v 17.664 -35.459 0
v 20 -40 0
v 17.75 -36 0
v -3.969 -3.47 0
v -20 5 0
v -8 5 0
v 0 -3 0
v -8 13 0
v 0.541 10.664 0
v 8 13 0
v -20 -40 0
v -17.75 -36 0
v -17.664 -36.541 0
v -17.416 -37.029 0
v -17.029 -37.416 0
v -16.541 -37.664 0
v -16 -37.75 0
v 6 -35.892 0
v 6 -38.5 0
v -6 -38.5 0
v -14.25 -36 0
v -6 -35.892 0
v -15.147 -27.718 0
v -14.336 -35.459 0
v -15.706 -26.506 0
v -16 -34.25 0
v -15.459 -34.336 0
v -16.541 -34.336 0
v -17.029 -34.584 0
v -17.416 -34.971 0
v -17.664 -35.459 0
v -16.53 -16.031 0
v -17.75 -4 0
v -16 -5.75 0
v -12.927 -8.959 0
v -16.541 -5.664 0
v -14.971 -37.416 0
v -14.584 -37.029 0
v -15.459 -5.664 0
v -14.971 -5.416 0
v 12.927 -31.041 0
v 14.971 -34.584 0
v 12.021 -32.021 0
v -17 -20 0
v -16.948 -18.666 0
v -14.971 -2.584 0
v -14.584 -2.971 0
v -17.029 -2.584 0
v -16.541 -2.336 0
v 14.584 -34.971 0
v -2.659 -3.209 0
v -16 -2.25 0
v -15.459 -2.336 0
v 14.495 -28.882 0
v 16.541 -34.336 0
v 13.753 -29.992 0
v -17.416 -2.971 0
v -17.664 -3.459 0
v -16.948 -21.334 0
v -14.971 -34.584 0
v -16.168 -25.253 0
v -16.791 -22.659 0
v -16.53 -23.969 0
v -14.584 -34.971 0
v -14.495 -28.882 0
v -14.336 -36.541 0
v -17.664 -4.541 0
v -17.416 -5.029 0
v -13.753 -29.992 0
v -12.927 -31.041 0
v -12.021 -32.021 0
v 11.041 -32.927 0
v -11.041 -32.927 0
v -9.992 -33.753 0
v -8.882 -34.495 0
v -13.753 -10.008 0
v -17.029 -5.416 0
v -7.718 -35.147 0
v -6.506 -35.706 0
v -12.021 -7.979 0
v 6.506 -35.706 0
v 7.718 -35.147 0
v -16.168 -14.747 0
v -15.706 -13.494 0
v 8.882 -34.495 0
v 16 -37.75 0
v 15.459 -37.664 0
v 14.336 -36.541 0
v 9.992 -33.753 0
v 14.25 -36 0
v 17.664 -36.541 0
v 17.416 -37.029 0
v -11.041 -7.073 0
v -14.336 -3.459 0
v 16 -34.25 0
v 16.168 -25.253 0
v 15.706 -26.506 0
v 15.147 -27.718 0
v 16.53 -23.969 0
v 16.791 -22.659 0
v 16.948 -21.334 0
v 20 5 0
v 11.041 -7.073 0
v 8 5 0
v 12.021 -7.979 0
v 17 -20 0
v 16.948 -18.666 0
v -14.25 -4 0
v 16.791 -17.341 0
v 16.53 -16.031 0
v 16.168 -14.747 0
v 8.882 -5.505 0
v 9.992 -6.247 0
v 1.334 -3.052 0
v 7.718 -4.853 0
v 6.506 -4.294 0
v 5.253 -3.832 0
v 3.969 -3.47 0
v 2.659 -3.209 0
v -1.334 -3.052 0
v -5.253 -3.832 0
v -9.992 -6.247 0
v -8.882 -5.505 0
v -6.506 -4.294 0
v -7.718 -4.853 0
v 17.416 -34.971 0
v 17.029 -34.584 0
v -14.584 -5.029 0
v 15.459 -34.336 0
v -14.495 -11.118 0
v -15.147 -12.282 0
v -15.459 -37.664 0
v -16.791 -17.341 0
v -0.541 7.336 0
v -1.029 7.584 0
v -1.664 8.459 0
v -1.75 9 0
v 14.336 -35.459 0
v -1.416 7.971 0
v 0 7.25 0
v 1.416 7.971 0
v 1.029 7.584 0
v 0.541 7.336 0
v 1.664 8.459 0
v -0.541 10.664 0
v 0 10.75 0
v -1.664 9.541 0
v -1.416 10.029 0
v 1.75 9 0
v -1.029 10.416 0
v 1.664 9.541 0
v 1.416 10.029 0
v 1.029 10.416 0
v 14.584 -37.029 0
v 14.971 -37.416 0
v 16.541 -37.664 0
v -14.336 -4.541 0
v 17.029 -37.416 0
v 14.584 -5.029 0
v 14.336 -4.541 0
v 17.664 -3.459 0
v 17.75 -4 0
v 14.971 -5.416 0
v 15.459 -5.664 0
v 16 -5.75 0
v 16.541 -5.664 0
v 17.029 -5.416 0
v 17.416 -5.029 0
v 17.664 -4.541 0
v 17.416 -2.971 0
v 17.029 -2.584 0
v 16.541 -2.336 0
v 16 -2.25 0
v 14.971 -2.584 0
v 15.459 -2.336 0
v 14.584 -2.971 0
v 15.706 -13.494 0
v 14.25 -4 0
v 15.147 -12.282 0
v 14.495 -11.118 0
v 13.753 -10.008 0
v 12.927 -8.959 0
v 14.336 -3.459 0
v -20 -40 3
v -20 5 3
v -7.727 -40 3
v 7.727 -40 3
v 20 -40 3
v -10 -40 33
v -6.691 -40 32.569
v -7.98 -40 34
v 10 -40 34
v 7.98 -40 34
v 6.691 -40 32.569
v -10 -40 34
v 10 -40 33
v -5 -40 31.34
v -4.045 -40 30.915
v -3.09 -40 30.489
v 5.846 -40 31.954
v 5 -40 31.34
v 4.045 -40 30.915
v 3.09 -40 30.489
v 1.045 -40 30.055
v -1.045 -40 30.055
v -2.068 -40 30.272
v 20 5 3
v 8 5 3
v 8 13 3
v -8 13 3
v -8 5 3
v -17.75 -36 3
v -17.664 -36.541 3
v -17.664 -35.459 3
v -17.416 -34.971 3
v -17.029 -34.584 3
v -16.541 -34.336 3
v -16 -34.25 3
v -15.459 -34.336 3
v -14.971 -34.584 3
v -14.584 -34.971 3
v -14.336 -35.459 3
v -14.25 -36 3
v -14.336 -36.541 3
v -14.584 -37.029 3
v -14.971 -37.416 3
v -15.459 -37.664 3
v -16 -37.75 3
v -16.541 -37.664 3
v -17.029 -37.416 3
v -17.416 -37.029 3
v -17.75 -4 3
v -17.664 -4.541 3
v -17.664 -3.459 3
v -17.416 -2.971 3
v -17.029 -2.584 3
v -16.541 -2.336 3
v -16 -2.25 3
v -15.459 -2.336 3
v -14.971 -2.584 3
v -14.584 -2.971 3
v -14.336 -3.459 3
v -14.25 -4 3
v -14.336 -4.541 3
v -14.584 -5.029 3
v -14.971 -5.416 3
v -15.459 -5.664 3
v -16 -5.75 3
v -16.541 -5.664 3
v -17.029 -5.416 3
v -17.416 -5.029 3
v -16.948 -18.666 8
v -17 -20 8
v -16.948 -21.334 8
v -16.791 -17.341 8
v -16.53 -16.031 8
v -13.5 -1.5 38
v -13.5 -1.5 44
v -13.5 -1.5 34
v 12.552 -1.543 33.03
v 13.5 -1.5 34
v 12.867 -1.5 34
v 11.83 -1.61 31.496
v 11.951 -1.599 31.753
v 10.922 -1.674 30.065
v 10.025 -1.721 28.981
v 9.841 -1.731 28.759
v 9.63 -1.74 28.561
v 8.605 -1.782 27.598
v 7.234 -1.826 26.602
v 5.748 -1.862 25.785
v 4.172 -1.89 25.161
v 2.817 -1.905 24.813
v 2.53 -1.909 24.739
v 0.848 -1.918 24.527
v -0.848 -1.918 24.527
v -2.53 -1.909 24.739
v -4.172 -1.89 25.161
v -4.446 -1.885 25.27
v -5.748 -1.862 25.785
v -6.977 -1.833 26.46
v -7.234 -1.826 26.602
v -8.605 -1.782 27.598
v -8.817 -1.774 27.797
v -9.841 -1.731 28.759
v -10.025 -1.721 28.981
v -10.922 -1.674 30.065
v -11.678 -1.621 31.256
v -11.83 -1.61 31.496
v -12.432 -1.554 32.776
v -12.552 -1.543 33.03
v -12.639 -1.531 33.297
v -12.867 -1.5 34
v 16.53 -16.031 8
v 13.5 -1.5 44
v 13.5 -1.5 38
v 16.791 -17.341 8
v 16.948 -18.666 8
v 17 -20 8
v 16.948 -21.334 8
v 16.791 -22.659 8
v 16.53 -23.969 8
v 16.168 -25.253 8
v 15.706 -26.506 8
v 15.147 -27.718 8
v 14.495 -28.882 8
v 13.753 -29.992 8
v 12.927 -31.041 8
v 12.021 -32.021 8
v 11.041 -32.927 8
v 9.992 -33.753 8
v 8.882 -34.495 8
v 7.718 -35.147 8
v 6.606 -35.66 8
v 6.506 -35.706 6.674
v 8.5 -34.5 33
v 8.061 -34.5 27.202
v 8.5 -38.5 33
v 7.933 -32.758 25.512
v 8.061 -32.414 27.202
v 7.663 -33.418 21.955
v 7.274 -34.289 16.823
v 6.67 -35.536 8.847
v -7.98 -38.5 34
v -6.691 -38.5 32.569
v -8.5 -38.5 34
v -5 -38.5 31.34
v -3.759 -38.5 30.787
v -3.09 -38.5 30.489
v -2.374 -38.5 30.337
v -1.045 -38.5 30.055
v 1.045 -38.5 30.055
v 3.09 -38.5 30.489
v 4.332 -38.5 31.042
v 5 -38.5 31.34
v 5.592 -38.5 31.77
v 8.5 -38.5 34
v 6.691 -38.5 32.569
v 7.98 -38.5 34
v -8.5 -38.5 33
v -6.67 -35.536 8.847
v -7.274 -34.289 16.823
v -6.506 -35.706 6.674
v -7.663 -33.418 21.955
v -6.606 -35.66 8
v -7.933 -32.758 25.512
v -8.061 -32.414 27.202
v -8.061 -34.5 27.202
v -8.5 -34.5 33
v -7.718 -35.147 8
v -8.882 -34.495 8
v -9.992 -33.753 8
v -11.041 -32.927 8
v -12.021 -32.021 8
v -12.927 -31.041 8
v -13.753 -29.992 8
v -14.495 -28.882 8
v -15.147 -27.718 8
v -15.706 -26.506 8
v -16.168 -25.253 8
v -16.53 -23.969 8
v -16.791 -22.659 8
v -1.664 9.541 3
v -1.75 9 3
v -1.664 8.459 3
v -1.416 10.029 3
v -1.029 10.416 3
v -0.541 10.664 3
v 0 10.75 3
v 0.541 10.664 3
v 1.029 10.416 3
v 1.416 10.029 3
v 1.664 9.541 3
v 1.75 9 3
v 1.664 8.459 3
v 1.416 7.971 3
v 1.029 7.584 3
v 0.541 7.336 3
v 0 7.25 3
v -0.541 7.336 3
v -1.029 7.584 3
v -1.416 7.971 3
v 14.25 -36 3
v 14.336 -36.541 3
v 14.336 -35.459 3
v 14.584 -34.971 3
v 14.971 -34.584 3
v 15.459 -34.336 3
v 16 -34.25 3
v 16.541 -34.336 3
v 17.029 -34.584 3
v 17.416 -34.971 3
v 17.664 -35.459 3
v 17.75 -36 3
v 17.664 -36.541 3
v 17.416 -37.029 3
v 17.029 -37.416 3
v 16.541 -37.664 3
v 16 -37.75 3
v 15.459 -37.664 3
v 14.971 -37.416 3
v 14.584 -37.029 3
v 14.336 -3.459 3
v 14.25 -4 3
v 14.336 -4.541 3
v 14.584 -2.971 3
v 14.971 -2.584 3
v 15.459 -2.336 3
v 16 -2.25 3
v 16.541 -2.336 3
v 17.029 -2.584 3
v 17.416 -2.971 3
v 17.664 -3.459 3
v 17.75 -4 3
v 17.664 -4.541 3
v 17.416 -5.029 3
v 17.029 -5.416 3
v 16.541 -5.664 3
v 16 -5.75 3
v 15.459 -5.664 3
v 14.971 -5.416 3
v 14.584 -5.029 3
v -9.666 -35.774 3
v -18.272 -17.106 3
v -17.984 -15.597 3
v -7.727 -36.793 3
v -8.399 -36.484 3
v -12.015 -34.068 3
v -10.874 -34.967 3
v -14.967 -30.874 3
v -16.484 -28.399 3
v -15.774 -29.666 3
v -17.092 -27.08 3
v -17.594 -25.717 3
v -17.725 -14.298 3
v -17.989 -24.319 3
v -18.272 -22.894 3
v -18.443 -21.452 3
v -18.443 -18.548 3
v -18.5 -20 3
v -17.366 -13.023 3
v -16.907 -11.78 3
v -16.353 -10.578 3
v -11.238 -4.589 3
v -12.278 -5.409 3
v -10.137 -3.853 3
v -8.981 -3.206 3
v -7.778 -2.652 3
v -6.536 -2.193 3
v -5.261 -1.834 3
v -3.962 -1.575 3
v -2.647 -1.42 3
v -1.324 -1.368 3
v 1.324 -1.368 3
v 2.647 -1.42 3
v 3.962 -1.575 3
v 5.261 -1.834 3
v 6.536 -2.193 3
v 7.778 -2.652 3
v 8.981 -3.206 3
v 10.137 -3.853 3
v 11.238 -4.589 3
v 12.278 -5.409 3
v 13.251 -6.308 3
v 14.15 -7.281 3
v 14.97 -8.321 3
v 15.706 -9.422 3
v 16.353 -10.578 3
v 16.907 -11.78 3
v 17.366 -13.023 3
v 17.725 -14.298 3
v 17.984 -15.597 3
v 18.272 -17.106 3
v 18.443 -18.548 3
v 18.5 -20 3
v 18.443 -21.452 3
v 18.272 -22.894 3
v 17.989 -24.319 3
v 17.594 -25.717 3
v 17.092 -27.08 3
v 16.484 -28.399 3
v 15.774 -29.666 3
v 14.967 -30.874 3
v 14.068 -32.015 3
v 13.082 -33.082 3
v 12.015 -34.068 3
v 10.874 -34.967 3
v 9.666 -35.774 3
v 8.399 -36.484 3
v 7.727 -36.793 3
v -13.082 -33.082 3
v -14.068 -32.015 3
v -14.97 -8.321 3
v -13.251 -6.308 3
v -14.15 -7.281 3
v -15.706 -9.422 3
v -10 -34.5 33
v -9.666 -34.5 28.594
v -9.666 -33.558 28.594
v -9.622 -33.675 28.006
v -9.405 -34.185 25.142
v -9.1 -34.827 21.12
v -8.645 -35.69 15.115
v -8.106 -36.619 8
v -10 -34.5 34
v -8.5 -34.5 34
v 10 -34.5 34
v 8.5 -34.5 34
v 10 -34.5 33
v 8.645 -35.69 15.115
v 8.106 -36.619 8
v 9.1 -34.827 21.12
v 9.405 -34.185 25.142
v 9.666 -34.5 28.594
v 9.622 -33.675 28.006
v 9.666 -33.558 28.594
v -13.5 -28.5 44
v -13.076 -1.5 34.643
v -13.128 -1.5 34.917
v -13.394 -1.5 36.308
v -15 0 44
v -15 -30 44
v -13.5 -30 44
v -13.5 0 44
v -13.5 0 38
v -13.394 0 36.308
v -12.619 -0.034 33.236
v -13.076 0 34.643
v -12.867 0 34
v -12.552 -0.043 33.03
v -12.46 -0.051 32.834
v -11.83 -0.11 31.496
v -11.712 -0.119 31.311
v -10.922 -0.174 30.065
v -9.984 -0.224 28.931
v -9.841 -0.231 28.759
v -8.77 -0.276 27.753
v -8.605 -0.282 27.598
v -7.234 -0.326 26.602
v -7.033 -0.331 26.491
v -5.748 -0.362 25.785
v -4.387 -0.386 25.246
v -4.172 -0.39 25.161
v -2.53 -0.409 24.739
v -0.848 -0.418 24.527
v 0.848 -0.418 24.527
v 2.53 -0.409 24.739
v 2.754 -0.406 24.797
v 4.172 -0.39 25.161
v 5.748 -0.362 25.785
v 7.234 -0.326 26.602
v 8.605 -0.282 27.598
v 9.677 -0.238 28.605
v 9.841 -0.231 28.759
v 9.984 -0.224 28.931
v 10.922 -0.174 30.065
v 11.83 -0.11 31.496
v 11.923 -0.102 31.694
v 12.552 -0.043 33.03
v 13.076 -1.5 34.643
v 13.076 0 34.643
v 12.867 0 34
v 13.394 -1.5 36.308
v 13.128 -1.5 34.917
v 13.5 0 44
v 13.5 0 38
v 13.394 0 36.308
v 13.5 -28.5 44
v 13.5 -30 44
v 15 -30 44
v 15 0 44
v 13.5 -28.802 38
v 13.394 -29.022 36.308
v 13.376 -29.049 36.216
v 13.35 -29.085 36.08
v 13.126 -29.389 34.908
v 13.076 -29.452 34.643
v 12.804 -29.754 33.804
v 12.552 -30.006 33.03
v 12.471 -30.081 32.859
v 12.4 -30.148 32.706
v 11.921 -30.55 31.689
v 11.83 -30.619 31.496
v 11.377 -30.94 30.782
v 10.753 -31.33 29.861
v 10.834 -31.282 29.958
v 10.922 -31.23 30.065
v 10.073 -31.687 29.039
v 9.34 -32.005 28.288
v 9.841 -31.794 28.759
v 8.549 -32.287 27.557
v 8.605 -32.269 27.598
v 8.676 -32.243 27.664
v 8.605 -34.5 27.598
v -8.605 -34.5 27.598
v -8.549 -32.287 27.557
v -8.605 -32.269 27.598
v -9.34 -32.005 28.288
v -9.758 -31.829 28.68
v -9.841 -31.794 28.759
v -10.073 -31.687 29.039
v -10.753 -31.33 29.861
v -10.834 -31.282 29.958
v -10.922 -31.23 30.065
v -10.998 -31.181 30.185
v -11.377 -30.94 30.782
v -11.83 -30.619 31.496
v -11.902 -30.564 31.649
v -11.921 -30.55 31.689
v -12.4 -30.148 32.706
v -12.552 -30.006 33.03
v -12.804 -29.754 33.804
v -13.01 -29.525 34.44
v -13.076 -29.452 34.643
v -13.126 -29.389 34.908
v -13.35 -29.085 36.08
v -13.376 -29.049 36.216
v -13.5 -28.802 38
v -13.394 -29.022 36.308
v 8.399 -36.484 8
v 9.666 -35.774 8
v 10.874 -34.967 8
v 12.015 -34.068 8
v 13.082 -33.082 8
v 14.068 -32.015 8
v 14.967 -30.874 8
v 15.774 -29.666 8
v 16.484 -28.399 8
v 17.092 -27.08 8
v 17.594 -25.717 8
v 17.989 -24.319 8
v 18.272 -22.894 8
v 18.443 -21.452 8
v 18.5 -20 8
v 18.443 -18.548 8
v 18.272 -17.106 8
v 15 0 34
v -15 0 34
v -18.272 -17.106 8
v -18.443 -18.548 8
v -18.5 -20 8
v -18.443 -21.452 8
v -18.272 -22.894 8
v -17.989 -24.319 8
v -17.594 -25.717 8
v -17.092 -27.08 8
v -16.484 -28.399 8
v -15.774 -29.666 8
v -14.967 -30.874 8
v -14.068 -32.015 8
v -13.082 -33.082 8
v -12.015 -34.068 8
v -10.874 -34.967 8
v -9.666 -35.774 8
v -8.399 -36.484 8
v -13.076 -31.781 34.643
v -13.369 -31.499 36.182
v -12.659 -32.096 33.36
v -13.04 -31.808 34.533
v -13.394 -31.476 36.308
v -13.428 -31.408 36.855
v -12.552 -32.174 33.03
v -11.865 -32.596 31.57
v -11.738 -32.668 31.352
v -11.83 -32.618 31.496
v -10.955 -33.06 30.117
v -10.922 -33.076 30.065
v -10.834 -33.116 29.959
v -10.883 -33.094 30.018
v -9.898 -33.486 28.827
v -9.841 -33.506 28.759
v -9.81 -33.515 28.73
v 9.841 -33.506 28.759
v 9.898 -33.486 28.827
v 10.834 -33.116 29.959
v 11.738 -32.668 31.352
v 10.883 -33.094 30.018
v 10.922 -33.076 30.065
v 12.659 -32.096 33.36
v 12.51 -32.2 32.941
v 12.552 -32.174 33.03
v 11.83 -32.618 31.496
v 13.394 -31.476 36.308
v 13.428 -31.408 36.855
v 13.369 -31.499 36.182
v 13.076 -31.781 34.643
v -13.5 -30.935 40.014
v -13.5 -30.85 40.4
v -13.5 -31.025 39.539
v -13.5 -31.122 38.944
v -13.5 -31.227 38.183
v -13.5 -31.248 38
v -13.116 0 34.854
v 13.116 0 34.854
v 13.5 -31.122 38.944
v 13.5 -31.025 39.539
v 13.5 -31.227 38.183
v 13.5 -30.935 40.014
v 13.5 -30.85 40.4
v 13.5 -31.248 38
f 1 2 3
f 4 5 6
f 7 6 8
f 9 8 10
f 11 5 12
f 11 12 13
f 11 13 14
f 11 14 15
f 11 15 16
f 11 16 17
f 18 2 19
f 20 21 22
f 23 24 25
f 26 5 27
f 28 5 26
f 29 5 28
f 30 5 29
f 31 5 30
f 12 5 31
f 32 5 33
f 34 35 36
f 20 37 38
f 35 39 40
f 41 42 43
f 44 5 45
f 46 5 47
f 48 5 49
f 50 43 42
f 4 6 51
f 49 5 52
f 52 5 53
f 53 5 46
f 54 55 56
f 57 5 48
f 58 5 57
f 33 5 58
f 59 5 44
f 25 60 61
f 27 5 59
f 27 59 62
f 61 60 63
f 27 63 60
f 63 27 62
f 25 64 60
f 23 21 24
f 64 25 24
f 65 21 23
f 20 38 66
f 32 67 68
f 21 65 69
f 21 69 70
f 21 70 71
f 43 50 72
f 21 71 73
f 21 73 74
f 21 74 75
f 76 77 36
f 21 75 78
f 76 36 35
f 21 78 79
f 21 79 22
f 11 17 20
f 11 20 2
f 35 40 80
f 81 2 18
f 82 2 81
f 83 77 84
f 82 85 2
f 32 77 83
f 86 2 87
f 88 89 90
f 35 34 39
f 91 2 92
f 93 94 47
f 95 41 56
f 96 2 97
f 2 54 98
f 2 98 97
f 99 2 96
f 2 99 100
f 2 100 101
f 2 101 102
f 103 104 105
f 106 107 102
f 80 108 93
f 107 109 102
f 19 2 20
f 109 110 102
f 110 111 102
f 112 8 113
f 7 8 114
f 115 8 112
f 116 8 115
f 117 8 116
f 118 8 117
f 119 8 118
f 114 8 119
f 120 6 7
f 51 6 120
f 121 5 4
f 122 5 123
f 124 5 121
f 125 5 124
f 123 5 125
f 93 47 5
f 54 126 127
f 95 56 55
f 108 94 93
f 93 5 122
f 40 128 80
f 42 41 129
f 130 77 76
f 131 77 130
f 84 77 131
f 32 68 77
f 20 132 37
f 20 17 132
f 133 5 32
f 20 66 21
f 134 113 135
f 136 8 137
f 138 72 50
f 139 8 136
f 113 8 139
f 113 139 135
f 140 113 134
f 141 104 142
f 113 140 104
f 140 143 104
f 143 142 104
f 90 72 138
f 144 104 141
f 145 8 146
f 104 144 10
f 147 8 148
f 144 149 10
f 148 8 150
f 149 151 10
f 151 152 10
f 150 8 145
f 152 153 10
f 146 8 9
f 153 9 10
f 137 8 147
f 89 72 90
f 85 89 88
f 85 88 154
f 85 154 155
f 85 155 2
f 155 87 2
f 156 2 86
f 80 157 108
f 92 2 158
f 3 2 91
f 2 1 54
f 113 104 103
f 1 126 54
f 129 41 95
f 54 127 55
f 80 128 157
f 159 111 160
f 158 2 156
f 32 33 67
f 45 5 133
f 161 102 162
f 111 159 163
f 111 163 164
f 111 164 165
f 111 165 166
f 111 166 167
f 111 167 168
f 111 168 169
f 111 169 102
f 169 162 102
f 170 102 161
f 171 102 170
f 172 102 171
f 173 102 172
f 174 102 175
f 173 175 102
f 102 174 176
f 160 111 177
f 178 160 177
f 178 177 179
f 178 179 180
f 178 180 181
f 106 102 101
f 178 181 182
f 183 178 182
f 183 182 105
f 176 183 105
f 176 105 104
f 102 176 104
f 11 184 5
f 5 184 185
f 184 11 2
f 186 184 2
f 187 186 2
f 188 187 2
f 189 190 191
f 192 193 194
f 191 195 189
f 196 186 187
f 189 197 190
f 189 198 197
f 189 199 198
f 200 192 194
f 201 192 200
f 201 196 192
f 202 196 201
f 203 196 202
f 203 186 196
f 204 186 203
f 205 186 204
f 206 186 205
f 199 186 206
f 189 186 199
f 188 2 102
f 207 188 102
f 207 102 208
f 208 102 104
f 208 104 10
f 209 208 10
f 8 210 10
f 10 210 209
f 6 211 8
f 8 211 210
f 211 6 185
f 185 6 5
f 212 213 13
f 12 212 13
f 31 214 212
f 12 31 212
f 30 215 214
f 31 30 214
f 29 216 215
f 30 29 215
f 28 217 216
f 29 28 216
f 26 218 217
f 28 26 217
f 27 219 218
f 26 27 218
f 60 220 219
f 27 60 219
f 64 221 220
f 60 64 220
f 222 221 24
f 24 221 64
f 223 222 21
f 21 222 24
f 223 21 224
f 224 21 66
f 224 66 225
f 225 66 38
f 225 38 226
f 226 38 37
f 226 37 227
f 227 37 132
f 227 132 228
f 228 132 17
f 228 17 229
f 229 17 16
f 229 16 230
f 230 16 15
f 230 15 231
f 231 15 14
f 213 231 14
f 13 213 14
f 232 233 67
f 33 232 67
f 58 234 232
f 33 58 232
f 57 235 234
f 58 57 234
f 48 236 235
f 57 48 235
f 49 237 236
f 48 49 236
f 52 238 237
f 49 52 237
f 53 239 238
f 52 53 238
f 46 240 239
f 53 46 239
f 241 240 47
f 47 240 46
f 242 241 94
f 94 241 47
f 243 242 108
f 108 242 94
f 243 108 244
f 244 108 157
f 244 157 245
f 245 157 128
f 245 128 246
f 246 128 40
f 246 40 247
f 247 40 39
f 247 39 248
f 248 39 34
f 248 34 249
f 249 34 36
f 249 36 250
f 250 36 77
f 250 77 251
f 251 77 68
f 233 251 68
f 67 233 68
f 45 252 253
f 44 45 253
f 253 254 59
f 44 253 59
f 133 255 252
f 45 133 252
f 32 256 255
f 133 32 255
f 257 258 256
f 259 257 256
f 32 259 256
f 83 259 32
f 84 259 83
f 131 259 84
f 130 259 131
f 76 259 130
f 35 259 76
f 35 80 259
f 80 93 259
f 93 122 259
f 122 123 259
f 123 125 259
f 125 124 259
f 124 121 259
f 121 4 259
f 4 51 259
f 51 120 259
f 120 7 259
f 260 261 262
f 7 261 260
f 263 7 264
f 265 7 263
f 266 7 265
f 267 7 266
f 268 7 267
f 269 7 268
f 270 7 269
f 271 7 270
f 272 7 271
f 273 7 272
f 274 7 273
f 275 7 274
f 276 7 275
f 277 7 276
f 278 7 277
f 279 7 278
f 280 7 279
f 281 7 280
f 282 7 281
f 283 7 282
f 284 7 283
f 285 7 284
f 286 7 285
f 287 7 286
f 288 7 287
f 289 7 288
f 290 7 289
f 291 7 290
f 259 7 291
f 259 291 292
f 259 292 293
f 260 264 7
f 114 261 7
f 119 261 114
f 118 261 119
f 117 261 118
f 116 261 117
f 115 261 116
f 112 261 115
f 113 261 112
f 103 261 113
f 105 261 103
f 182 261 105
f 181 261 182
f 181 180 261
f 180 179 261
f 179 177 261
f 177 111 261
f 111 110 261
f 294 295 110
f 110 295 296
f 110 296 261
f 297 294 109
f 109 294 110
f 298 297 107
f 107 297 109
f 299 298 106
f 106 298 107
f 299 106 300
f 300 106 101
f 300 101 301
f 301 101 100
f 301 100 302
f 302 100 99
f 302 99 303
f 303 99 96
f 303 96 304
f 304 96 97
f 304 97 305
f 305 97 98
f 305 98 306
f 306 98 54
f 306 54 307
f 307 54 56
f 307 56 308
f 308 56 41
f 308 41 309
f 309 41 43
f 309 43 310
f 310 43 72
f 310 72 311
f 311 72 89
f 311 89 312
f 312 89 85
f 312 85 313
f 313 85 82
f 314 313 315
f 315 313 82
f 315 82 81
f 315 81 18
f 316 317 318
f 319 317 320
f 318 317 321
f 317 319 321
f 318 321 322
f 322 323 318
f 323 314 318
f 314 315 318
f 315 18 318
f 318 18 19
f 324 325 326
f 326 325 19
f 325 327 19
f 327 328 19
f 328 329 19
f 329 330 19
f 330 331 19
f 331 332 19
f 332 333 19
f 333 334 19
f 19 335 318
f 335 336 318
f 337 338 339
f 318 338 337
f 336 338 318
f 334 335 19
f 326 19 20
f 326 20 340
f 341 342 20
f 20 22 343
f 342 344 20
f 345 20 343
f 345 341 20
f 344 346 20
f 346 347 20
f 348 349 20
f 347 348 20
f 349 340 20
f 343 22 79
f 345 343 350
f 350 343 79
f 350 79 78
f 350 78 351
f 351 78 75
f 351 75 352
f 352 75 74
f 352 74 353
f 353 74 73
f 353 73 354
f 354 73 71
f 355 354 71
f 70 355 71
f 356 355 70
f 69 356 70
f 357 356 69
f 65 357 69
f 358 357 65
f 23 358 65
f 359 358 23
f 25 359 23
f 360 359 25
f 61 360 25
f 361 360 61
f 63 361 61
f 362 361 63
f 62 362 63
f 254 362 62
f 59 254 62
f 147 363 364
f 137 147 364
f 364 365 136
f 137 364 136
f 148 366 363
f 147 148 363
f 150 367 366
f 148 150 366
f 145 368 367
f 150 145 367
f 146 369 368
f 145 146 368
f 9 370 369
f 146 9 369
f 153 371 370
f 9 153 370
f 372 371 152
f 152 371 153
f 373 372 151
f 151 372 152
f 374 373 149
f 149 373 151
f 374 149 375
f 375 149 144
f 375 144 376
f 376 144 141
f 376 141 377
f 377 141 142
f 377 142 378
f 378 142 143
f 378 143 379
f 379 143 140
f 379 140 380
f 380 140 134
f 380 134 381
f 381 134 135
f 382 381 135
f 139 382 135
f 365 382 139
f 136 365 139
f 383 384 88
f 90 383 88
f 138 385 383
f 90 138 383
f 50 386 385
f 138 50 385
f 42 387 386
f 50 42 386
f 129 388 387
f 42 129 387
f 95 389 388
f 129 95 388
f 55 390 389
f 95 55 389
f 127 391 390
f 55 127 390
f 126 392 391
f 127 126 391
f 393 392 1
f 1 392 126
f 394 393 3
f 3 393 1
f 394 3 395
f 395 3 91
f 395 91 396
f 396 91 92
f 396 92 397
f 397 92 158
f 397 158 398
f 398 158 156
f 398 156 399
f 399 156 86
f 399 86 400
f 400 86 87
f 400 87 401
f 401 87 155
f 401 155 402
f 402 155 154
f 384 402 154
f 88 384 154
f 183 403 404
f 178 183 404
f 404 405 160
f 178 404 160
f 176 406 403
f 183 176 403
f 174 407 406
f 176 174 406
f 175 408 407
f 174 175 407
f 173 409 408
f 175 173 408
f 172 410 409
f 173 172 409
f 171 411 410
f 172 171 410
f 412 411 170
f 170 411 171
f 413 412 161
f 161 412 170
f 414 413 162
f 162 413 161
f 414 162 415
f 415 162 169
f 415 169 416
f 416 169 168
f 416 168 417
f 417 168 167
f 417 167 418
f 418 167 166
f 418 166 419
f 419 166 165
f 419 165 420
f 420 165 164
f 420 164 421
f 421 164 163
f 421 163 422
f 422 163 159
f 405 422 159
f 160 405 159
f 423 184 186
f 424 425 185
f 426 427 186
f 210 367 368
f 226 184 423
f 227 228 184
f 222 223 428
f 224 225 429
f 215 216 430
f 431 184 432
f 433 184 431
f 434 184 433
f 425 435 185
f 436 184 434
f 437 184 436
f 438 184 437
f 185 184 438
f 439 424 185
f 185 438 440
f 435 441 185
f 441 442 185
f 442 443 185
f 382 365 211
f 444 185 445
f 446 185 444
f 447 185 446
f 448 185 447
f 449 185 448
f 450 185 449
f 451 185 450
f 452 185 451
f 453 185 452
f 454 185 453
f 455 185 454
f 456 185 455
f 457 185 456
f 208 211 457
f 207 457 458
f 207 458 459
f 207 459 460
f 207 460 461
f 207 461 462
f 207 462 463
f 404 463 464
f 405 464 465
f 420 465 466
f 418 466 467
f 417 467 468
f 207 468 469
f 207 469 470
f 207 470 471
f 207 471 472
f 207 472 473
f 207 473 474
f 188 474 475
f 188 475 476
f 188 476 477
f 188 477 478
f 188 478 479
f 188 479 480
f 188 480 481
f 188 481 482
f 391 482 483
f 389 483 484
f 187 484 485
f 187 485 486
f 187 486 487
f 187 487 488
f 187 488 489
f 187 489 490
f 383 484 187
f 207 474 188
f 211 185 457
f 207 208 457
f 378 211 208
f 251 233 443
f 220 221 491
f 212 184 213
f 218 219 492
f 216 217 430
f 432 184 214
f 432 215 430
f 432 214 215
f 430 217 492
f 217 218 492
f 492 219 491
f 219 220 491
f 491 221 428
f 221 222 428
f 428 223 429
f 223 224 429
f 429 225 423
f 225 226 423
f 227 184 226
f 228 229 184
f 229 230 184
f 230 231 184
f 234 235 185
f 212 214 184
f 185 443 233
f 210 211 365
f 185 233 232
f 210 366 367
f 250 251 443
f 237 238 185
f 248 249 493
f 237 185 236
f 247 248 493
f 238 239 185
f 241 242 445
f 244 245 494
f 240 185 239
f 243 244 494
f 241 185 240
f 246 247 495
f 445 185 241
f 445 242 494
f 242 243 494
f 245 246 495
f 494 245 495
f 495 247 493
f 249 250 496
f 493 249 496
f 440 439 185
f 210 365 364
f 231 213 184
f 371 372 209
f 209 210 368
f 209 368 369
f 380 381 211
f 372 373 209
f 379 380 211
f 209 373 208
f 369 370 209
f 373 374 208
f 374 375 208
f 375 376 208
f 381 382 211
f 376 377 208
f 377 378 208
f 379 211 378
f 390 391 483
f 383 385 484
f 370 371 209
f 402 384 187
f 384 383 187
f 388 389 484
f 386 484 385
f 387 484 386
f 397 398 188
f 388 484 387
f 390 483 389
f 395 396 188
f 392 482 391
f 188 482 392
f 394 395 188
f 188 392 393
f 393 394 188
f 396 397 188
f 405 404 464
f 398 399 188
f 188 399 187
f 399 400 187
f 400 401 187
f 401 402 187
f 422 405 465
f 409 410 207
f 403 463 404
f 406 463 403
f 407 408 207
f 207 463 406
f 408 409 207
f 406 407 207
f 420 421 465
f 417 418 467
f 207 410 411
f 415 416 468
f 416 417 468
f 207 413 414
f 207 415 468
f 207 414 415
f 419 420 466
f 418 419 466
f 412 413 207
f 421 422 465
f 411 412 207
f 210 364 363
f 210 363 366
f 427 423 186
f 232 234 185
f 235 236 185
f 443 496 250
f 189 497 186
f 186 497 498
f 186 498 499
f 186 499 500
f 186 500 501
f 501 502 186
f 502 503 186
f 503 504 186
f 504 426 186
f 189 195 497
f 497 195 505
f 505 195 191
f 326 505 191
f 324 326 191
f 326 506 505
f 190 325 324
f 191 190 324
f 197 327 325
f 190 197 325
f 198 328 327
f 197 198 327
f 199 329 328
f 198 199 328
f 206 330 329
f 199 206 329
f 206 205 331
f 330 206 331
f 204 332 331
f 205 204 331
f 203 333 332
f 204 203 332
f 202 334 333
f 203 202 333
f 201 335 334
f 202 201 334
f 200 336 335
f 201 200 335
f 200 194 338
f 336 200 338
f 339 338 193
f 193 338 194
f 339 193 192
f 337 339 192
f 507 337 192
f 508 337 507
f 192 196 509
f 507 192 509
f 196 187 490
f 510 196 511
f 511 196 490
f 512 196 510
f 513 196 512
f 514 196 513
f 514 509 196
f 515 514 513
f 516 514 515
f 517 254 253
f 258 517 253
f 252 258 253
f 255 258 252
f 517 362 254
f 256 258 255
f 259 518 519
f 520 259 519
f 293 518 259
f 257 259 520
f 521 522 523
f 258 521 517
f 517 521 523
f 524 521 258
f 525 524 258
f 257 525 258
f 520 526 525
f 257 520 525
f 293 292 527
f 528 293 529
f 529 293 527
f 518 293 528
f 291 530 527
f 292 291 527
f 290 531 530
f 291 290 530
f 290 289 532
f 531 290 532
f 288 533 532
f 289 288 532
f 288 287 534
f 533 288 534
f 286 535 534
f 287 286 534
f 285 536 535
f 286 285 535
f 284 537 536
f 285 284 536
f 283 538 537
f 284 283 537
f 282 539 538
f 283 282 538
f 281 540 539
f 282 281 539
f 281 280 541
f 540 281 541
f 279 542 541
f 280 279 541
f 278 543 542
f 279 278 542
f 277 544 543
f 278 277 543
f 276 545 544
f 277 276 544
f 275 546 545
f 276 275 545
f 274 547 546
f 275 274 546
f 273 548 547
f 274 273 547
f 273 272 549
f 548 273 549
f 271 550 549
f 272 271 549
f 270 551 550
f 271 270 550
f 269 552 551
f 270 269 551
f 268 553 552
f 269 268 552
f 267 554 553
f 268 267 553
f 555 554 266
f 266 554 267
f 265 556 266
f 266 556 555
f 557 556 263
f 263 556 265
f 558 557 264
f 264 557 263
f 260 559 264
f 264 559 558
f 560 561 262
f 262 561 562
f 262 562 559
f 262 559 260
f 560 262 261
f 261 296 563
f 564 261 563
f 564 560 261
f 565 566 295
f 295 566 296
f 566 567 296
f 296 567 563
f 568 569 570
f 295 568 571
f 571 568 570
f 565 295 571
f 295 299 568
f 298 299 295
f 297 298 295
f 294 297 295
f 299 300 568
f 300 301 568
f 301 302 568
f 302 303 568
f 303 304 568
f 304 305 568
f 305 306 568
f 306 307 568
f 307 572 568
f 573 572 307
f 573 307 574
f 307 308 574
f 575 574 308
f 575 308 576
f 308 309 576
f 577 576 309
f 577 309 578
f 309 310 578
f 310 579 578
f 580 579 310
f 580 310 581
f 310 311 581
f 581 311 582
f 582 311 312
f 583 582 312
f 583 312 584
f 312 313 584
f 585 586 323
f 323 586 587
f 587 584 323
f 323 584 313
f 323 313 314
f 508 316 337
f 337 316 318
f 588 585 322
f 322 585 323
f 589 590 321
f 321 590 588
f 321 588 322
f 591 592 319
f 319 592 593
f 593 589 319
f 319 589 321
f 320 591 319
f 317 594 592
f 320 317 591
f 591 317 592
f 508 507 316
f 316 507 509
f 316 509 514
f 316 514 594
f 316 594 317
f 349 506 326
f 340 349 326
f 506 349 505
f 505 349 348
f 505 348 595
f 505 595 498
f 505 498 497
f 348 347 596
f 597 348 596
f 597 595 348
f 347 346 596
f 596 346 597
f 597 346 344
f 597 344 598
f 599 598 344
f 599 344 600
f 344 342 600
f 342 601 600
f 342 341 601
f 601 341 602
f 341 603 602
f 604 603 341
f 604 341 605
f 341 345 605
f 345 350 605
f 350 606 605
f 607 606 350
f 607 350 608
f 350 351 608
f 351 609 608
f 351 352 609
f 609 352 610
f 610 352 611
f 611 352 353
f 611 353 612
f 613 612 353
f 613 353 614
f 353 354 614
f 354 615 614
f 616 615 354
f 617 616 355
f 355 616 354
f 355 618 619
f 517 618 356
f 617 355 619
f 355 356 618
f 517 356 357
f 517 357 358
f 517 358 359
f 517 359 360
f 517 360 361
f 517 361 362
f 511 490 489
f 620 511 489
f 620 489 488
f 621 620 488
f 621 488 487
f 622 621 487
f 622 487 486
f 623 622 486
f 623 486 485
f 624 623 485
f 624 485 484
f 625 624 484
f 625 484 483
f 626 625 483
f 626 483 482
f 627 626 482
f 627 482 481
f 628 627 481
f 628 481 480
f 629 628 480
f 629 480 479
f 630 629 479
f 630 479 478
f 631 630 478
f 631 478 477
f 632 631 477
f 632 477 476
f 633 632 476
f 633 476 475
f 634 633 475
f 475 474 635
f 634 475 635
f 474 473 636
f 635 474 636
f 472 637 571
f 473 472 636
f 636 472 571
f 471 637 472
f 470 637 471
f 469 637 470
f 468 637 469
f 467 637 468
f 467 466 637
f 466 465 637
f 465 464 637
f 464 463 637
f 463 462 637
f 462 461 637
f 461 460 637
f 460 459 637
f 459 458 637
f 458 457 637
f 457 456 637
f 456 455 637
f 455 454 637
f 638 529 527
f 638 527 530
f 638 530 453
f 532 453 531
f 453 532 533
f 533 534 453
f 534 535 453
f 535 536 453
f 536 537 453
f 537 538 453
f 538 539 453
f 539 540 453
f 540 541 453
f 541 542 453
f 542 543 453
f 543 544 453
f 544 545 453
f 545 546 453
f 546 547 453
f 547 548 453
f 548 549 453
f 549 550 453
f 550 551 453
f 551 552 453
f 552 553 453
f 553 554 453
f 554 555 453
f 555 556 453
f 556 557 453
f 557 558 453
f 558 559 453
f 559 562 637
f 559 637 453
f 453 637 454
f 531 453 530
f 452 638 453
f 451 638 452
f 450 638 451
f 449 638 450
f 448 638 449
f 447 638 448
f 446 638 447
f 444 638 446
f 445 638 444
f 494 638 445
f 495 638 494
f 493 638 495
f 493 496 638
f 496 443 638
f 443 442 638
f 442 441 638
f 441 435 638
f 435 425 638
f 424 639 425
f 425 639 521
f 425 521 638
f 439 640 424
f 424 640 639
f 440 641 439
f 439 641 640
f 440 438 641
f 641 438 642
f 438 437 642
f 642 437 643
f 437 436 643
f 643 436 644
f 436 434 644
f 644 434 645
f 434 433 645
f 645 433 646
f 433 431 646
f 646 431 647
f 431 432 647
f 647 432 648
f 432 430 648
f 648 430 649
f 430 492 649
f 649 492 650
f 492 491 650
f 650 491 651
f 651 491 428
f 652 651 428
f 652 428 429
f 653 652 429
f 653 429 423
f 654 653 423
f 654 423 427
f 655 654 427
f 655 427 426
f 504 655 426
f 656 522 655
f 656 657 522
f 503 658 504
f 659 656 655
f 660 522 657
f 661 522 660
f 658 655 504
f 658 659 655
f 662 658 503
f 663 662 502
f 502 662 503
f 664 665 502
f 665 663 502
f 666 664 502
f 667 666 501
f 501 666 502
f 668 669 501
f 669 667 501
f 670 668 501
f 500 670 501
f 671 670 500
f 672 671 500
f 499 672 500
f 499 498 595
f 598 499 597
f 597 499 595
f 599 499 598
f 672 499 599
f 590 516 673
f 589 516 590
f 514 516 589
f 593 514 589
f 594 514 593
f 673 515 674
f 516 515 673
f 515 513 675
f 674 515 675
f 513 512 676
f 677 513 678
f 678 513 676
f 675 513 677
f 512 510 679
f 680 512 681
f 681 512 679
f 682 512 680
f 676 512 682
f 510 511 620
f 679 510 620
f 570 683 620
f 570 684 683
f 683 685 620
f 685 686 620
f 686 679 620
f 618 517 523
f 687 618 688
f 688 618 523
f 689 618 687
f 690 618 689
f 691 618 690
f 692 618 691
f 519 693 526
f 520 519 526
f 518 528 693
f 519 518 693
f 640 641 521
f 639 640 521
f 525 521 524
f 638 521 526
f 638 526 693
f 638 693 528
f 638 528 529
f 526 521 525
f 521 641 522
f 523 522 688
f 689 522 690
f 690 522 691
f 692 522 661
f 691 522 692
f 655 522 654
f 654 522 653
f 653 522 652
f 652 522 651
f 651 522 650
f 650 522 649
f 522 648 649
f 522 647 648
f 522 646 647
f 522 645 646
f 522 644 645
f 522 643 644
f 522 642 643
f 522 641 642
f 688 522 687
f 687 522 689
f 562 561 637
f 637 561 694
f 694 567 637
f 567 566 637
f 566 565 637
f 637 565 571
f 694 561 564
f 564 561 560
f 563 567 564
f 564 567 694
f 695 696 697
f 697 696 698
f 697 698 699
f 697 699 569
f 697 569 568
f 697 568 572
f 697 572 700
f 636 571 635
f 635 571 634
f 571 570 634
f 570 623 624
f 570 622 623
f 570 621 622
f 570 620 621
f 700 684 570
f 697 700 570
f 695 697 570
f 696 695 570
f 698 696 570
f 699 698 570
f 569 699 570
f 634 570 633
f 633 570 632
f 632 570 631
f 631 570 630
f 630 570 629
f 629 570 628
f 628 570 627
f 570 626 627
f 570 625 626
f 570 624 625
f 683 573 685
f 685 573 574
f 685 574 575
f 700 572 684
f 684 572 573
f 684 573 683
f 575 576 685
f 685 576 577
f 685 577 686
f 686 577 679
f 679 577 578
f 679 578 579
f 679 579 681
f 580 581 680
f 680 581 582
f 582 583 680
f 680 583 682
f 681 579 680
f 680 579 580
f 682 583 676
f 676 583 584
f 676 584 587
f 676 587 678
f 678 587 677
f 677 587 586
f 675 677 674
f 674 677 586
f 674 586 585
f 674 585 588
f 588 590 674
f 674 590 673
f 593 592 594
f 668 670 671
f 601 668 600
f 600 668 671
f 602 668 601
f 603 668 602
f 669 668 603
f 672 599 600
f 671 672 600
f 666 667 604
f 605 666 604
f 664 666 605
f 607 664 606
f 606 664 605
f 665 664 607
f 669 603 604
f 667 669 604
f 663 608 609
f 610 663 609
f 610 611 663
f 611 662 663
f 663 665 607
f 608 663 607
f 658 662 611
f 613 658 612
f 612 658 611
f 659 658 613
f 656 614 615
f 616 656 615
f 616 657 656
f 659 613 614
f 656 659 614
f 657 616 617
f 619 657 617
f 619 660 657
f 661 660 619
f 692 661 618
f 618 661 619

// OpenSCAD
module duct(){
translate([-8,5])
difference(){
cube([16,8,3]);
translate([8,4,-1])cylinder(r=3.5/2,h=10,$fn=20);
}
difference(){
translate([-20,-40,0])cube([40,45,3]);
translate([-16,-4,-1])cylinder(r=3.5/2,h=6,$fn=20);
translate([16,-4,-1])cylinder(r=3.5/2,h=6,$fn=20);
translate([-16,-36,-1])cylinder(r=3.5/2,h=6,$fn=20);
translate([16,-36,-1])cylinder(r=3.5/2,h=6,$fn=20);
translate([0,-20,-1])cylinder(r=37/2,h=6,$fn=80);

}
difference(){
difference(){
union(){
hull(){
translate([0,-20,0])cylinder(r=37/2,h=8,$fn=80);
translate([-15,-30,17+17])cube([30,30,10]);
}
hull(){
translate([-15/2,-40,0])cube([15,30,1]);
translate([-20/2,-40,17+16])cube([20,30,1]);
}
}
hull(){
translate([0,-20,0])cylinder(r=37/2-1.5,h=8,$fn=80);
translate([-27/2,-27-1.5,17+17])cube([27,27,10]);
}
}
hull(){
translate([0,5,38])rotate([90,0,0])cylinder(r=27/2,h=39.5,$fn=50);
translate([0,5,35+10])rotate([90,0,0])cylinder(r=27/2,h=39.5,$fn=50);
}
}
}

difference(){
duct();
hull(){
translate([-(20-3)/2,-40+1.5,17+16])cube([20-3,30,1]);
translate([-(15-3)/2,-40+1.5,0])cube([15-3,30,1]);
}
translate([0,-35,17+23])rotate([90,0])cylinder(r=20/2,h=10,$fn=30);
}
